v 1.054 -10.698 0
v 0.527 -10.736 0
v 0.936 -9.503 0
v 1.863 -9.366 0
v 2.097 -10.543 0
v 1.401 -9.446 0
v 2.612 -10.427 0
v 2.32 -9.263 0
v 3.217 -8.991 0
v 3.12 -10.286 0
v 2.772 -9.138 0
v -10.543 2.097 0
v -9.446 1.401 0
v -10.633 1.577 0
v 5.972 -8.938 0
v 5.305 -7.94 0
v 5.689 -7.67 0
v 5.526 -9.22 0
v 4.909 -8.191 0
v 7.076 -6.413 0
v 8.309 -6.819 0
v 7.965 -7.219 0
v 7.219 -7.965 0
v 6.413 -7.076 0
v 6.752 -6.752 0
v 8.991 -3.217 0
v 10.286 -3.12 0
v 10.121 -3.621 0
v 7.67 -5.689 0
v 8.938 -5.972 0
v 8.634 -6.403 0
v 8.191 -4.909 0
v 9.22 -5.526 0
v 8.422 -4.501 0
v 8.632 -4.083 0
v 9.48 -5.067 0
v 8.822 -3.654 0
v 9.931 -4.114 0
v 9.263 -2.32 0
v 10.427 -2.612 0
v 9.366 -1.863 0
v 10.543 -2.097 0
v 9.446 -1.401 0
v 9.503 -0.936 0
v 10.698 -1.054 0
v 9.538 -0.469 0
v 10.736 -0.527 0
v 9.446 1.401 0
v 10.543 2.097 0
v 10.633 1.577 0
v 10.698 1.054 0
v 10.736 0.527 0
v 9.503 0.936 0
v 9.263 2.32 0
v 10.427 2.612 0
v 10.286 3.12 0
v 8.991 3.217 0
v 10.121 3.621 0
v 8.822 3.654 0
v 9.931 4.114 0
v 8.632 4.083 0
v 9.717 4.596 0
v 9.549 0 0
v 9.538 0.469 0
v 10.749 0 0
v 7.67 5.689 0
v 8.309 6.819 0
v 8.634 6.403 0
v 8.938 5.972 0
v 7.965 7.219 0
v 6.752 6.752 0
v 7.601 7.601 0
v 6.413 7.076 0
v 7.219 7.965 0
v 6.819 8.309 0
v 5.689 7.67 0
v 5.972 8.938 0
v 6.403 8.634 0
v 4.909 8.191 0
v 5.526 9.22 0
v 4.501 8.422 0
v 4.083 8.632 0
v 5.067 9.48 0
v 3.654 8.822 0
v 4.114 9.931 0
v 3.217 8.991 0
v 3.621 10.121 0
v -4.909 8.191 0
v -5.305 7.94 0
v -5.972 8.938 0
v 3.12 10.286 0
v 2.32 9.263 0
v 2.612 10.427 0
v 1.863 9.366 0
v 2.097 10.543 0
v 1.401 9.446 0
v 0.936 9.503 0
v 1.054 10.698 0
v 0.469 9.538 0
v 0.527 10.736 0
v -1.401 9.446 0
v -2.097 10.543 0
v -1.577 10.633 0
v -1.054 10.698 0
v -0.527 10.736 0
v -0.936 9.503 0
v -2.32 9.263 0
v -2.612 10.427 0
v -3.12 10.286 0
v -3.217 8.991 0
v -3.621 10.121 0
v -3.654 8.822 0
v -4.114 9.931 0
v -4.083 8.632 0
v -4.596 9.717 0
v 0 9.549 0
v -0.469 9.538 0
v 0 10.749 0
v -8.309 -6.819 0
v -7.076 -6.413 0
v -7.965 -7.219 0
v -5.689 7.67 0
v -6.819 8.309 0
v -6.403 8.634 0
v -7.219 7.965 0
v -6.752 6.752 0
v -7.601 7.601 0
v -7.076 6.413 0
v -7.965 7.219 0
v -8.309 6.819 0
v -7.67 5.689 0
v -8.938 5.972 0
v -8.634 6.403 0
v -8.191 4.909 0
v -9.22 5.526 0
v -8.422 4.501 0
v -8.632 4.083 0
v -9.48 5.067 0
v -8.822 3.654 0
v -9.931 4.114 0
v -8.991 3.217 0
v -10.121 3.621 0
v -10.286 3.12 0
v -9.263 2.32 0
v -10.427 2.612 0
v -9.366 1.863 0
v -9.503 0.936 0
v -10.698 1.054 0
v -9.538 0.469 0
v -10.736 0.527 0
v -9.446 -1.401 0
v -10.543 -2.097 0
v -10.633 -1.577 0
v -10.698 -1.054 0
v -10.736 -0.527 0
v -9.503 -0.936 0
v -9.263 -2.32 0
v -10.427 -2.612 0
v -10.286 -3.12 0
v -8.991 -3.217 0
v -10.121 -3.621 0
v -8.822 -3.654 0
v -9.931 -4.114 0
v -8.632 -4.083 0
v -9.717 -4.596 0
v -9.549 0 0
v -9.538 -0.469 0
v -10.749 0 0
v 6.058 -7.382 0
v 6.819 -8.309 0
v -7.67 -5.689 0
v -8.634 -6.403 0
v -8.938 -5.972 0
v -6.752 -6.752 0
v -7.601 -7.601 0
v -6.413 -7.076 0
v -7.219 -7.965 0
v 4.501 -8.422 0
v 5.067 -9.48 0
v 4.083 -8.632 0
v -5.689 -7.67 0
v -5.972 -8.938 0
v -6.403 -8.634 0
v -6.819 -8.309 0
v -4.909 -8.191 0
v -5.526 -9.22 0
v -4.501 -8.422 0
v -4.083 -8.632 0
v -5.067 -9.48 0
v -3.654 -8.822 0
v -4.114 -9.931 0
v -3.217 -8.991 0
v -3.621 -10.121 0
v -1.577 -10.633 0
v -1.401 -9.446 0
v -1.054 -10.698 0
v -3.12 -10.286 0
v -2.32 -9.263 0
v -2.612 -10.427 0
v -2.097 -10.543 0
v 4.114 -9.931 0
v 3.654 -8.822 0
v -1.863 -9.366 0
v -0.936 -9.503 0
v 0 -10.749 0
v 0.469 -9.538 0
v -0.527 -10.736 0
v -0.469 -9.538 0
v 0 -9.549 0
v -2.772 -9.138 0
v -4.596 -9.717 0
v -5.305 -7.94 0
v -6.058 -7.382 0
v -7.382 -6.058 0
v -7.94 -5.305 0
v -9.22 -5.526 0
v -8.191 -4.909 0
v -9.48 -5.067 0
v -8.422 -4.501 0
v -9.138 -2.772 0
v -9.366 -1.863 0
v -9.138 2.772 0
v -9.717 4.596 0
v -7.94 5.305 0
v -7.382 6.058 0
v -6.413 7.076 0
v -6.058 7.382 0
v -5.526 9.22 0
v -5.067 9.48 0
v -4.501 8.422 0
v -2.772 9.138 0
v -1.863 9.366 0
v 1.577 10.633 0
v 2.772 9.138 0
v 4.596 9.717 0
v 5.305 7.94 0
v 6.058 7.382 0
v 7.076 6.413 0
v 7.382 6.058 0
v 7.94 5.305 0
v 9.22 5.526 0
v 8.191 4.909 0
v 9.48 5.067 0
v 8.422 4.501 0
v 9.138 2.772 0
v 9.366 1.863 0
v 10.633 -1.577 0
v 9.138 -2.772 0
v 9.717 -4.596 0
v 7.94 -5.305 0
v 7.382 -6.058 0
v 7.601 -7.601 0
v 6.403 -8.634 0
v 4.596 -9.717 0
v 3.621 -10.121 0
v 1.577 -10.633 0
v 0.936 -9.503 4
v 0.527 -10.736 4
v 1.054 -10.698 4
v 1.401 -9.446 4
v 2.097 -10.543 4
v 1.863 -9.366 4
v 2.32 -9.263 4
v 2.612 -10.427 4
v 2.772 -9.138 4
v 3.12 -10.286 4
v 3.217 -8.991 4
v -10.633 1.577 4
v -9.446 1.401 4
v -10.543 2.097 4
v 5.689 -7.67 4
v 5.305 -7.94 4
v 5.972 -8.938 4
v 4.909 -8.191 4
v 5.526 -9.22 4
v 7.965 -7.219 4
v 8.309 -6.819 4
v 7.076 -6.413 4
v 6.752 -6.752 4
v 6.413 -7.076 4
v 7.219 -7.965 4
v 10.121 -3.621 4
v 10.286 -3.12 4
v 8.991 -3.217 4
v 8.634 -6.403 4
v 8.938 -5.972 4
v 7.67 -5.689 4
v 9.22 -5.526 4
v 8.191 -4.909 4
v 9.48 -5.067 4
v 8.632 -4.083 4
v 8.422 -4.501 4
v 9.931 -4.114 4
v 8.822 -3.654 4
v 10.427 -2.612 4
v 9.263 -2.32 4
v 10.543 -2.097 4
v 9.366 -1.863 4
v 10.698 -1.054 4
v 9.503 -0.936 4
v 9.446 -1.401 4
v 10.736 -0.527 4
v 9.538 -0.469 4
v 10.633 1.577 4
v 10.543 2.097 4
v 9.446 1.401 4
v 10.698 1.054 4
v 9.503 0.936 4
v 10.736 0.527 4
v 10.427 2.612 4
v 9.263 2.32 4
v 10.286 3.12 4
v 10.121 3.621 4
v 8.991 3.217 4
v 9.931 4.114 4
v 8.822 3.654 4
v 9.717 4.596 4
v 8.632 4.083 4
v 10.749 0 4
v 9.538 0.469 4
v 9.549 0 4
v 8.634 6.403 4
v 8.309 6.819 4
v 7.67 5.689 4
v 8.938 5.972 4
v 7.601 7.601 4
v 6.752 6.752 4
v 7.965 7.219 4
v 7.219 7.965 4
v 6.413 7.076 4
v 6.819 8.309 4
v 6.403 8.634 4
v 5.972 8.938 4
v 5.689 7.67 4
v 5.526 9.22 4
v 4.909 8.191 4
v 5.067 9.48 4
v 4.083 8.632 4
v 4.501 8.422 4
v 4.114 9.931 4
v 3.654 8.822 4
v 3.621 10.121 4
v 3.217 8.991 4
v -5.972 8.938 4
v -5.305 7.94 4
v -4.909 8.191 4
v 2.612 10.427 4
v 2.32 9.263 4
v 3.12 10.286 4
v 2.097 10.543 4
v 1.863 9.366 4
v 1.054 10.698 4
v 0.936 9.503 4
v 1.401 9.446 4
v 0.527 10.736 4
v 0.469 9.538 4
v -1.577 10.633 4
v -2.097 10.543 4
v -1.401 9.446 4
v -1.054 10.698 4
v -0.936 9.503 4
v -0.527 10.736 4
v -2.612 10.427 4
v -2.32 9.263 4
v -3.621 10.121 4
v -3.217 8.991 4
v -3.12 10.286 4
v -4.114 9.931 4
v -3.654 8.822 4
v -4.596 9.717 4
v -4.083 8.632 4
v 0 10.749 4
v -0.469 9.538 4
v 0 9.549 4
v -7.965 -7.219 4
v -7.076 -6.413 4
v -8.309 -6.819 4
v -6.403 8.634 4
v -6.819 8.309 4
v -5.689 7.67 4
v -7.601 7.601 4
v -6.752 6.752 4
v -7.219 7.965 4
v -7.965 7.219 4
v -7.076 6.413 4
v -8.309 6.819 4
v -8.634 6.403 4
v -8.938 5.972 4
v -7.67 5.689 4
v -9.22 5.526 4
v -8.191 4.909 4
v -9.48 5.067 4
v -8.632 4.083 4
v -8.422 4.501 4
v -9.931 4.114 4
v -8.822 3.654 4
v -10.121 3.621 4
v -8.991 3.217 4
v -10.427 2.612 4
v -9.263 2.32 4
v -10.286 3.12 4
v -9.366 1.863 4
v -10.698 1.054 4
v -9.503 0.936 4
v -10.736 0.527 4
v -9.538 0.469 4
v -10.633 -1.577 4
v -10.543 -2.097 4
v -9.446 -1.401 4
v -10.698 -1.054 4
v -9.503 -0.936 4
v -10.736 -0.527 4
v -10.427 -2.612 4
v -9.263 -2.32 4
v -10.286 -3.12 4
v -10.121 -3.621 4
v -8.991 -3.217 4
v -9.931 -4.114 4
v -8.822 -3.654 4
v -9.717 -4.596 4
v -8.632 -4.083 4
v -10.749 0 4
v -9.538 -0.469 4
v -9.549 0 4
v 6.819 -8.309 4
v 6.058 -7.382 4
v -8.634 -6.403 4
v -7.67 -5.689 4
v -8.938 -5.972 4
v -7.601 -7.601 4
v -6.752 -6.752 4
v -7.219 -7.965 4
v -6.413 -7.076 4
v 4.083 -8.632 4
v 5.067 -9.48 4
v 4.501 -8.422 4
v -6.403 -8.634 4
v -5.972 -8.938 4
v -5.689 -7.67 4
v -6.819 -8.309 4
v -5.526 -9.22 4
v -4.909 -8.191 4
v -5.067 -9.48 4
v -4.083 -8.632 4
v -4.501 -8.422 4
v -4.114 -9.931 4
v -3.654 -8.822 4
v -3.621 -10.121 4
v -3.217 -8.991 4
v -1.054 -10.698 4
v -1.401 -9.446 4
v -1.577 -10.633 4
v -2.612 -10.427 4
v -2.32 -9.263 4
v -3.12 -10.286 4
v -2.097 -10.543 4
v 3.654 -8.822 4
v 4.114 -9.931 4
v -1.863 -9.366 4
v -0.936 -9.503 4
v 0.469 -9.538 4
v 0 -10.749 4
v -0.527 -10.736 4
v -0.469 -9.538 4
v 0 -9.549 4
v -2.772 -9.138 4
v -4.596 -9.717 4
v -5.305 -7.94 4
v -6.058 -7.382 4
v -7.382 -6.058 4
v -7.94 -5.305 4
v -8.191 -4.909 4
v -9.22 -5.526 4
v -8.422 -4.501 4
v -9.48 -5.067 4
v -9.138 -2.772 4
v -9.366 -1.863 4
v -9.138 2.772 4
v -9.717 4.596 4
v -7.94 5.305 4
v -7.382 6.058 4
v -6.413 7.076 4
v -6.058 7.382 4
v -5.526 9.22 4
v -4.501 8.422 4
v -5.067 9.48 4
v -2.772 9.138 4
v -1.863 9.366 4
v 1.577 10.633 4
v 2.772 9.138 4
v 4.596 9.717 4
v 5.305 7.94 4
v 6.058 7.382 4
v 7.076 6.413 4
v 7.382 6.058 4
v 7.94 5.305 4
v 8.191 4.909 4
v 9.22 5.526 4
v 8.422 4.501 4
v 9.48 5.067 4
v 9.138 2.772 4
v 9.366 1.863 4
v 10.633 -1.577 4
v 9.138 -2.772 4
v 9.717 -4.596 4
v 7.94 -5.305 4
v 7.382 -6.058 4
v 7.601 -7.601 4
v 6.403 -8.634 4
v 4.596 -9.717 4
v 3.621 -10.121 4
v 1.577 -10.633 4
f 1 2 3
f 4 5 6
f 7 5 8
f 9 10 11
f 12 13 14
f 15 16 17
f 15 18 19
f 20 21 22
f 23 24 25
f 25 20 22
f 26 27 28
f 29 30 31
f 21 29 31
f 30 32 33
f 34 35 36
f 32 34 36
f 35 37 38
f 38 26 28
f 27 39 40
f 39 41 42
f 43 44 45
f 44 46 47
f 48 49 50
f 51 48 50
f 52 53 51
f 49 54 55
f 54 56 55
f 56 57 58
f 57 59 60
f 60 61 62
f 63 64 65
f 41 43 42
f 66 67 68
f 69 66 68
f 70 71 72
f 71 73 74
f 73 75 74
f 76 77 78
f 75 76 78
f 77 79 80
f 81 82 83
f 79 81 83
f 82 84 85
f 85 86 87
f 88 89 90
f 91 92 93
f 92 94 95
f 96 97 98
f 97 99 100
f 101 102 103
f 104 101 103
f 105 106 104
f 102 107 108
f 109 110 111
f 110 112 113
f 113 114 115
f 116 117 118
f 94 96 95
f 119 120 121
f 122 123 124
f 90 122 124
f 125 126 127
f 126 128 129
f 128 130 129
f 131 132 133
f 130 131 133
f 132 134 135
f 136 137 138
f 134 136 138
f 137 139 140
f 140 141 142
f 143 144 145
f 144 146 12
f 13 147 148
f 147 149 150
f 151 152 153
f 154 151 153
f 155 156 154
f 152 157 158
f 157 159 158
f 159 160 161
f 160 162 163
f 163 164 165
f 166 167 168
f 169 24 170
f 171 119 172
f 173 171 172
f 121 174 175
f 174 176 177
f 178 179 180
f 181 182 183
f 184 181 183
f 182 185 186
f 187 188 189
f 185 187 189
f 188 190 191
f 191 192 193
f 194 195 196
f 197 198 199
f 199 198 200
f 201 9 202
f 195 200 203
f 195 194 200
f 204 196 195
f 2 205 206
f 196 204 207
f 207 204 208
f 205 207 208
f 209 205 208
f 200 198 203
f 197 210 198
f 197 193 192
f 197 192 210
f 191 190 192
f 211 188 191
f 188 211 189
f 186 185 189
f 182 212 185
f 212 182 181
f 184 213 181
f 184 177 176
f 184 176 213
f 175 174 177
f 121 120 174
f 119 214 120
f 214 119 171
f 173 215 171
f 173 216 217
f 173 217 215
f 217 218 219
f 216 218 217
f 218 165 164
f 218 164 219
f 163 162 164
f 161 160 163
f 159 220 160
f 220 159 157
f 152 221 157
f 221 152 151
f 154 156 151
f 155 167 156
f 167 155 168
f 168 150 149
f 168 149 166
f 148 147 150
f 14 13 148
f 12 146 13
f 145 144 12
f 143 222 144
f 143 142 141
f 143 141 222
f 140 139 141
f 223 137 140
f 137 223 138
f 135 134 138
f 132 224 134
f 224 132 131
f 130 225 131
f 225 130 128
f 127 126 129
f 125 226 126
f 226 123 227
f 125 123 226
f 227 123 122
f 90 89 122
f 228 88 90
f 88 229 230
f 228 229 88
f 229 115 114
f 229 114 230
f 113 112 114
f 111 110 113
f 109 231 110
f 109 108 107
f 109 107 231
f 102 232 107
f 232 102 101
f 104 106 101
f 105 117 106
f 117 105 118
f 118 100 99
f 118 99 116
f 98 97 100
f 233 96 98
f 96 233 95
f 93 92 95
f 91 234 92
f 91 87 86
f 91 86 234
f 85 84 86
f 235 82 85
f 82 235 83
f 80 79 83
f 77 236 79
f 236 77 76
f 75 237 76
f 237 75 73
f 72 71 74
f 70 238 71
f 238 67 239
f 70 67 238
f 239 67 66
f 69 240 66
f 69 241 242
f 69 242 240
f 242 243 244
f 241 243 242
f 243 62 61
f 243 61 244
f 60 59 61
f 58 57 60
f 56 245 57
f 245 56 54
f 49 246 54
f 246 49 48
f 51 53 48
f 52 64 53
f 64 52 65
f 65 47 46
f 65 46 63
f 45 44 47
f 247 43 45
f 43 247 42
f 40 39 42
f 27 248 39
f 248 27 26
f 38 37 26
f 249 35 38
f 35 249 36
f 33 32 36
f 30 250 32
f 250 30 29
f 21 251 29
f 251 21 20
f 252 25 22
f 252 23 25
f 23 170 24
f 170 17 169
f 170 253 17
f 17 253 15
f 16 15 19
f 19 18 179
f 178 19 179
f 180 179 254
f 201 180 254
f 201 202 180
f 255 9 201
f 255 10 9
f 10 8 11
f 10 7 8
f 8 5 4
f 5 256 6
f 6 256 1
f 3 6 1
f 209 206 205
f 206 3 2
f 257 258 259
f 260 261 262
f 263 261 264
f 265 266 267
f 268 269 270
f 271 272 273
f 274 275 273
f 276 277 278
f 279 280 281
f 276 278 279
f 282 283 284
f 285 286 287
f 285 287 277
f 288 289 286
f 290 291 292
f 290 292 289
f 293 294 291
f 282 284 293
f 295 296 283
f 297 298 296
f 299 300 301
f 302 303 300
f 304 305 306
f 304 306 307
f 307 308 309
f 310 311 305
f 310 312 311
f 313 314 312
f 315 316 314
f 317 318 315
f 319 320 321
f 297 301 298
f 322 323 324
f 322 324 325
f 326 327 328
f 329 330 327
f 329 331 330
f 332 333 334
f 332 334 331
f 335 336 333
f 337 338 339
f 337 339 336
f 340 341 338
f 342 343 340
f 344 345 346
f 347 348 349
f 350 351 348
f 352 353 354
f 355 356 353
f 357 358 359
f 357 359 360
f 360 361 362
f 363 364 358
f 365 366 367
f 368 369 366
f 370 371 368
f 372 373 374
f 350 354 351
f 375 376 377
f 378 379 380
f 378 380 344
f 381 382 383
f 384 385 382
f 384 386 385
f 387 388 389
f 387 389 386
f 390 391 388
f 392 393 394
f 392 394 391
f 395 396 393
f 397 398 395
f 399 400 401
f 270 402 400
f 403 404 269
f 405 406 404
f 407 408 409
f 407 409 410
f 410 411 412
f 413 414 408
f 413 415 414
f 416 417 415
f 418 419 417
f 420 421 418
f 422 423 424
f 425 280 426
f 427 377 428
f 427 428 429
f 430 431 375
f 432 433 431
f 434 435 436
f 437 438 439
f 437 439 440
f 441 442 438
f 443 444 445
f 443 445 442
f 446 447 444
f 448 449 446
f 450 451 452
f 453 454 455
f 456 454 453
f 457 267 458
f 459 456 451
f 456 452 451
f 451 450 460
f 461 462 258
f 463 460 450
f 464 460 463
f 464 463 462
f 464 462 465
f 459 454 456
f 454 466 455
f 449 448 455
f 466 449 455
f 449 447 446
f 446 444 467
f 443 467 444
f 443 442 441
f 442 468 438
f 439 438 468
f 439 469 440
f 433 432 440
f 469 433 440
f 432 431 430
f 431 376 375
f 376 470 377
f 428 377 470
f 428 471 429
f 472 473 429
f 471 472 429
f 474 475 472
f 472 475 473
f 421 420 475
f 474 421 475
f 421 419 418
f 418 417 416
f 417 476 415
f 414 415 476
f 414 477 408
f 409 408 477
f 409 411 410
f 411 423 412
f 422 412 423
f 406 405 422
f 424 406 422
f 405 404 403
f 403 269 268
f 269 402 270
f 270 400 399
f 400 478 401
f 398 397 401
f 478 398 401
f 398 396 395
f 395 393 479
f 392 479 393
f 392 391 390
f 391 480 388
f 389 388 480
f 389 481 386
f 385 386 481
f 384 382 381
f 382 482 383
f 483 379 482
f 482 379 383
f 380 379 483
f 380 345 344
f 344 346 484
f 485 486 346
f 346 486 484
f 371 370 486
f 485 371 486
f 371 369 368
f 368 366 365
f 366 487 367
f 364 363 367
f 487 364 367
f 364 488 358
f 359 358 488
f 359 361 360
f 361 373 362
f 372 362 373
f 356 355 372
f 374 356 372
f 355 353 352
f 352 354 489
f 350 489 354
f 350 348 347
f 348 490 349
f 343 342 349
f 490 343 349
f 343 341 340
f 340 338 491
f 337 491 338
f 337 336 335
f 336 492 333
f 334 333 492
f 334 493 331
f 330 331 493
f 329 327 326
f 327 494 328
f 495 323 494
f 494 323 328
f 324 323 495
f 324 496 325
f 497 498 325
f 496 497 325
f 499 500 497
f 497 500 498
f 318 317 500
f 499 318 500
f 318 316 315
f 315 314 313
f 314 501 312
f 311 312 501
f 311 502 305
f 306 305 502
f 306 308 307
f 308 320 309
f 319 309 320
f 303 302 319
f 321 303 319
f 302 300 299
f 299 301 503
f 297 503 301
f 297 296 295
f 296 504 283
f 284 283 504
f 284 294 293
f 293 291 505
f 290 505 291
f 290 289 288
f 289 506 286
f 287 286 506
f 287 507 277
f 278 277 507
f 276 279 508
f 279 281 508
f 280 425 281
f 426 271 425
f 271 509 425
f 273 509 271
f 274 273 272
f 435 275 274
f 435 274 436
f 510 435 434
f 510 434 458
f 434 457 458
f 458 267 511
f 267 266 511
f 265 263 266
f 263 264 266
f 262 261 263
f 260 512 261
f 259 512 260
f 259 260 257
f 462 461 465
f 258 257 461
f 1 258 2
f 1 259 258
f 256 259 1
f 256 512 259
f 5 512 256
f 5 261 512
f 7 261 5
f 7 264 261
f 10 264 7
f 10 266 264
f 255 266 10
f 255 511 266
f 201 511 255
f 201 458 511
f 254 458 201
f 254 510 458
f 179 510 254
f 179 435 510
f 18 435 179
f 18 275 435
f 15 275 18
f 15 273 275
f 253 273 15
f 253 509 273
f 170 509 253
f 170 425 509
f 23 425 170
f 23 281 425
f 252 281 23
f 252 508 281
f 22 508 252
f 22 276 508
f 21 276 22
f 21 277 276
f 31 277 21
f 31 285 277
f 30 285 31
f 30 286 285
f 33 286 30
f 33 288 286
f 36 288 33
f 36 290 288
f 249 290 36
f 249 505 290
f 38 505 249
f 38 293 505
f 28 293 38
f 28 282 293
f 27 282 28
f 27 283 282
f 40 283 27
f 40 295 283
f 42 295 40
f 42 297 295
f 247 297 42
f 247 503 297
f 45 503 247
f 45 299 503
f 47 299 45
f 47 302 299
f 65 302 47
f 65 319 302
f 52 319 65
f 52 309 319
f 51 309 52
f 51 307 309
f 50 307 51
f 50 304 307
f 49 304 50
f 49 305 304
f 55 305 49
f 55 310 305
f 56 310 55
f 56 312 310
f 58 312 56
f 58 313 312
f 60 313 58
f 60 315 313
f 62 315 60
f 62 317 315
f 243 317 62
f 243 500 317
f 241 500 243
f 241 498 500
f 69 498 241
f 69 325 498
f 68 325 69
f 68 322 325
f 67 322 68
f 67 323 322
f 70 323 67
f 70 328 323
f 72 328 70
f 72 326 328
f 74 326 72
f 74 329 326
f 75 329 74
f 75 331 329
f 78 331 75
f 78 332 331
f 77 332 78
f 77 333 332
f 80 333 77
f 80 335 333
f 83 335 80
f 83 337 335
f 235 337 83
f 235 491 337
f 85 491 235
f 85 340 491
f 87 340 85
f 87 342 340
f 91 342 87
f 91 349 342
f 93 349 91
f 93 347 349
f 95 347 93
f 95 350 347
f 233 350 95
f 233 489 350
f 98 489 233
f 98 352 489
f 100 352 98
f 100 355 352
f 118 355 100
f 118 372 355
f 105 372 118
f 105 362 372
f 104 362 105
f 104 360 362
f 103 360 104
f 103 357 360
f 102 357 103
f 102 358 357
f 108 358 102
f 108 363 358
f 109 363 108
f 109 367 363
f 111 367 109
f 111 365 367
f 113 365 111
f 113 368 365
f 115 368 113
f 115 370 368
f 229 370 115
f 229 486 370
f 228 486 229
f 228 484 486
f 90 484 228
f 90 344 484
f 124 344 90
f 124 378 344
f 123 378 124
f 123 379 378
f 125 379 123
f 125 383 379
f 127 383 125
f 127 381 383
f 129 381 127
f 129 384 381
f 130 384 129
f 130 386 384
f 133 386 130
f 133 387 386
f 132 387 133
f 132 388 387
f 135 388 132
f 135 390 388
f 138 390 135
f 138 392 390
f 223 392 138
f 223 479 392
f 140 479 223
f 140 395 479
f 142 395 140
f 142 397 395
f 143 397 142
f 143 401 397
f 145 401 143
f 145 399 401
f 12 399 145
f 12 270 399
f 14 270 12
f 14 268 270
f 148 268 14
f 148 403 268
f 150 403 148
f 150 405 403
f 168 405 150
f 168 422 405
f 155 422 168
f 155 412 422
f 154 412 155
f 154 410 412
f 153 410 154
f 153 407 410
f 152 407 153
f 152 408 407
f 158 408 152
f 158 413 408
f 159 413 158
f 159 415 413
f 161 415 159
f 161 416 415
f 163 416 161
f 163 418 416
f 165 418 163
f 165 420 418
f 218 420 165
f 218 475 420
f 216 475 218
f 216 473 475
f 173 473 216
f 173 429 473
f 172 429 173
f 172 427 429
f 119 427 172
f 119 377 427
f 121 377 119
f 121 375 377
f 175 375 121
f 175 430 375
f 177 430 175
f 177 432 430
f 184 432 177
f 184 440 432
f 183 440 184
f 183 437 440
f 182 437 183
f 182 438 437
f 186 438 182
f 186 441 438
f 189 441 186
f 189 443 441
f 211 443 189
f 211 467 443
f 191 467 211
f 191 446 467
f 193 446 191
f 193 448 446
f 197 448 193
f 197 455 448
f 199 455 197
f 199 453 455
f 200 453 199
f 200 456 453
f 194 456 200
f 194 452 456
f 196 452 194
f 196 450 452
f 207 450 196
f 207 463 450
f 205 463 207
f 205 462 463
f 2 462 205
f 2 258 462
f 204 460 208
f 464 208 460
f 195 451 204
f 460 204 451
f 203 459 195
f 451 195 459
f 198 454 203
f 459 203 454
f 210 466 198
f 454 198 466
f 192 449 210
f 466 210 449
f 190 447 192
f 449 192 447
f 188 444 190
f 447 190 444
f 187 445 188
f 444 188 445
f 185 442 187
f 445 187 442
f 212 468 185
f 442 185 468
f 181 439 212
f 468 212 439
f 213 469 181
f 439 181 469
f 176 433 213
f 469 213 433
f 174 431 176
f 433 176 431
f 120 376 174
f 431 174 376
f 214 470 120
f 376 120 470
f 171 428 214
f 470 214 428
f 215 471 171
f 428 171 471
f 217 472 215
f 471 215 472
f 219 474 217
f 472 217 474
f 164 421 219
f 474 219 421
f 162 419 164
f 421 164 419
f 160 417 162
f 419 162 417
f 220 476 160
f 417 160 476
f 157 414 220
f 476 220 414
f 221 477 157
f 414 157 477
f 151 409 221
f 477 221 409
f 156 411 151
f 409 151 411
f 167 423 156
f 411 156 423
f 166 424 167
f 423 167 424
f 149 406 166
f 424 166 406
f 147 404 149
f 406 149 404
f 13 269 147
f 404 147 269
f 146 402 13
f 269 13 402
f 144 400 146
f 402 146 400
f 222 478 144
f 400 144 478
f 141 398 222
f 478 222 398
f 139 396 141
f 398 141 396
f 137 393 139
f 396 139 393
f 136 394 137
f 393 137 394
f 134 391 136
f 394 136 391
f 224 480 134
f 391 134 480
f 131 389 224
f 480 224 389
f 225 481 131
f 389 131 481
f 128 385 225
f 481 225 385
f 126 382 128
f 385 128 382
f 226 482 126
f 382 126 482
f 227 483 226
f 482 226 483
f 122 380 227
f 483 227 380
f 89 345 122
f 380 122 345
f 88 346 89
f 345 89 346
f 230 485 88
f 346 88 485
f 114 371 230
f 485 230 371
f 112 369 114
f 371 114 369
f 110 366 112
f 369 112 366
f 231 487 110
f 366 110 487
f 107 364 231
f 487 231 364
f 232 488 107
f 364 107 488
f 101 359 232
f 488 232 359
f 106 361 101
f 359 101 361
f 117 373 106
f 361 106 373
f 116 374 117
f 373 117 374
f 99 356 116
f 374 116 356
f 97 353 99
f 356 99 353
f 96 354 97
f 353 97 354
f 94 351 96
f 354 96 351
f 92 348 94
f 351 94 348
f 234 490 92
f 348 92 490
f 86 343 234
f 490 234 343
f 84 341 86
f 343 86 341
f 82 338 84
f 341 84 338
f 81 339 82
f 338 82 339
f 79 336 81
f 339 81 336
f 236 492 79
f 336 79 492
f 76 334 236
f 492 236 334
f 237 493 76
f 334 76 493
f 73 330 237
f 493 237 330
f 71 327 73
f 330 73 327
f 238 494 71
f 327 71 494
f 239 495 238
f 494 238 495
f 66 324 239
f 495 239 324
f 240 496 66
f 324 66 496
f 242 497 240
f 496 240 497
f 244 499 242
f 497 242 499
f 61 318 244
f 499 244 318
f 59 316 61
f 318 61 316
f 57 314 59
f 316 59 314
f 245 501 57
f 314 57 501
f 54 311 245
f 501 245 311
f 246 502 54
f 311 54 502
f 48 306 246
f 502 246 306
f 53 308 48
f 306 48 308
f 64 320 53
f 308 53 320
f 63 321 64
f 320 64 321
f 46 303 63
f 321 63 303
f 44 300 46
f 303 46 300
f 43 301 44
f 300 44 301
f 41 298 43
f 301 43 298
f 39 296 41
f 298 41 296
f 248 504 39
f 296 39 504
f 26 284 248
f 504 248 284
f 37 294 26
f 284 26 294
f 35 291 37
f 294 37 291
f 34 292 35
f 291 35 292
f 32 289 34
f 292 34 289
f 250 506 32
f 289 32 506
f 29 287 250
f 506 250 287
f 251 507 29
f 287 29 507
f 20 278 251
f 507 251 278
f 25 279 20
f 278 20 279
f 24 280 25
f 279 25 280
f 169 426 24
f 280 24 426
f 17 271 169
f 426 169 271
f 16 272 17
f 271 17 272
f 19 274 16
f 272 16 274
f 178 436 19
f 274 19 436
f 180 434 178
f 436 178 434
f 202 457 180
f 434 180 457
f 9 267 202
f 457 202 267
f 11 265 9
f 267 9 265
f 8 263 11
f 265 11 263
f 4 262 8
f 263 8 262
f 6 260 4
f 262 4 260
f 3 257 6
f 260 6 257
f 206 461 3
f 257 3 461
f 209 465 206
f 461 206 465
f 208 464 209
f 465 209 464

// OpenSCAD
$fn = 128;


// ring size in poland
ring_size = 20;

// i.e.
// female size: 9
// male size: 20

// height in mm
ring_width = 4.00;

// width
ring_thickness = 1.20;

dia = (ring_size + 40.00) / PI;
echo("dia", dia);
echo("circumference", (dia / 2) * PI * 2)

linear_extrude(ring_width) {
    difference() {
        circle(r = ring_thickness + dia / 2);
        circle(r = dia / 2);
    }
}
